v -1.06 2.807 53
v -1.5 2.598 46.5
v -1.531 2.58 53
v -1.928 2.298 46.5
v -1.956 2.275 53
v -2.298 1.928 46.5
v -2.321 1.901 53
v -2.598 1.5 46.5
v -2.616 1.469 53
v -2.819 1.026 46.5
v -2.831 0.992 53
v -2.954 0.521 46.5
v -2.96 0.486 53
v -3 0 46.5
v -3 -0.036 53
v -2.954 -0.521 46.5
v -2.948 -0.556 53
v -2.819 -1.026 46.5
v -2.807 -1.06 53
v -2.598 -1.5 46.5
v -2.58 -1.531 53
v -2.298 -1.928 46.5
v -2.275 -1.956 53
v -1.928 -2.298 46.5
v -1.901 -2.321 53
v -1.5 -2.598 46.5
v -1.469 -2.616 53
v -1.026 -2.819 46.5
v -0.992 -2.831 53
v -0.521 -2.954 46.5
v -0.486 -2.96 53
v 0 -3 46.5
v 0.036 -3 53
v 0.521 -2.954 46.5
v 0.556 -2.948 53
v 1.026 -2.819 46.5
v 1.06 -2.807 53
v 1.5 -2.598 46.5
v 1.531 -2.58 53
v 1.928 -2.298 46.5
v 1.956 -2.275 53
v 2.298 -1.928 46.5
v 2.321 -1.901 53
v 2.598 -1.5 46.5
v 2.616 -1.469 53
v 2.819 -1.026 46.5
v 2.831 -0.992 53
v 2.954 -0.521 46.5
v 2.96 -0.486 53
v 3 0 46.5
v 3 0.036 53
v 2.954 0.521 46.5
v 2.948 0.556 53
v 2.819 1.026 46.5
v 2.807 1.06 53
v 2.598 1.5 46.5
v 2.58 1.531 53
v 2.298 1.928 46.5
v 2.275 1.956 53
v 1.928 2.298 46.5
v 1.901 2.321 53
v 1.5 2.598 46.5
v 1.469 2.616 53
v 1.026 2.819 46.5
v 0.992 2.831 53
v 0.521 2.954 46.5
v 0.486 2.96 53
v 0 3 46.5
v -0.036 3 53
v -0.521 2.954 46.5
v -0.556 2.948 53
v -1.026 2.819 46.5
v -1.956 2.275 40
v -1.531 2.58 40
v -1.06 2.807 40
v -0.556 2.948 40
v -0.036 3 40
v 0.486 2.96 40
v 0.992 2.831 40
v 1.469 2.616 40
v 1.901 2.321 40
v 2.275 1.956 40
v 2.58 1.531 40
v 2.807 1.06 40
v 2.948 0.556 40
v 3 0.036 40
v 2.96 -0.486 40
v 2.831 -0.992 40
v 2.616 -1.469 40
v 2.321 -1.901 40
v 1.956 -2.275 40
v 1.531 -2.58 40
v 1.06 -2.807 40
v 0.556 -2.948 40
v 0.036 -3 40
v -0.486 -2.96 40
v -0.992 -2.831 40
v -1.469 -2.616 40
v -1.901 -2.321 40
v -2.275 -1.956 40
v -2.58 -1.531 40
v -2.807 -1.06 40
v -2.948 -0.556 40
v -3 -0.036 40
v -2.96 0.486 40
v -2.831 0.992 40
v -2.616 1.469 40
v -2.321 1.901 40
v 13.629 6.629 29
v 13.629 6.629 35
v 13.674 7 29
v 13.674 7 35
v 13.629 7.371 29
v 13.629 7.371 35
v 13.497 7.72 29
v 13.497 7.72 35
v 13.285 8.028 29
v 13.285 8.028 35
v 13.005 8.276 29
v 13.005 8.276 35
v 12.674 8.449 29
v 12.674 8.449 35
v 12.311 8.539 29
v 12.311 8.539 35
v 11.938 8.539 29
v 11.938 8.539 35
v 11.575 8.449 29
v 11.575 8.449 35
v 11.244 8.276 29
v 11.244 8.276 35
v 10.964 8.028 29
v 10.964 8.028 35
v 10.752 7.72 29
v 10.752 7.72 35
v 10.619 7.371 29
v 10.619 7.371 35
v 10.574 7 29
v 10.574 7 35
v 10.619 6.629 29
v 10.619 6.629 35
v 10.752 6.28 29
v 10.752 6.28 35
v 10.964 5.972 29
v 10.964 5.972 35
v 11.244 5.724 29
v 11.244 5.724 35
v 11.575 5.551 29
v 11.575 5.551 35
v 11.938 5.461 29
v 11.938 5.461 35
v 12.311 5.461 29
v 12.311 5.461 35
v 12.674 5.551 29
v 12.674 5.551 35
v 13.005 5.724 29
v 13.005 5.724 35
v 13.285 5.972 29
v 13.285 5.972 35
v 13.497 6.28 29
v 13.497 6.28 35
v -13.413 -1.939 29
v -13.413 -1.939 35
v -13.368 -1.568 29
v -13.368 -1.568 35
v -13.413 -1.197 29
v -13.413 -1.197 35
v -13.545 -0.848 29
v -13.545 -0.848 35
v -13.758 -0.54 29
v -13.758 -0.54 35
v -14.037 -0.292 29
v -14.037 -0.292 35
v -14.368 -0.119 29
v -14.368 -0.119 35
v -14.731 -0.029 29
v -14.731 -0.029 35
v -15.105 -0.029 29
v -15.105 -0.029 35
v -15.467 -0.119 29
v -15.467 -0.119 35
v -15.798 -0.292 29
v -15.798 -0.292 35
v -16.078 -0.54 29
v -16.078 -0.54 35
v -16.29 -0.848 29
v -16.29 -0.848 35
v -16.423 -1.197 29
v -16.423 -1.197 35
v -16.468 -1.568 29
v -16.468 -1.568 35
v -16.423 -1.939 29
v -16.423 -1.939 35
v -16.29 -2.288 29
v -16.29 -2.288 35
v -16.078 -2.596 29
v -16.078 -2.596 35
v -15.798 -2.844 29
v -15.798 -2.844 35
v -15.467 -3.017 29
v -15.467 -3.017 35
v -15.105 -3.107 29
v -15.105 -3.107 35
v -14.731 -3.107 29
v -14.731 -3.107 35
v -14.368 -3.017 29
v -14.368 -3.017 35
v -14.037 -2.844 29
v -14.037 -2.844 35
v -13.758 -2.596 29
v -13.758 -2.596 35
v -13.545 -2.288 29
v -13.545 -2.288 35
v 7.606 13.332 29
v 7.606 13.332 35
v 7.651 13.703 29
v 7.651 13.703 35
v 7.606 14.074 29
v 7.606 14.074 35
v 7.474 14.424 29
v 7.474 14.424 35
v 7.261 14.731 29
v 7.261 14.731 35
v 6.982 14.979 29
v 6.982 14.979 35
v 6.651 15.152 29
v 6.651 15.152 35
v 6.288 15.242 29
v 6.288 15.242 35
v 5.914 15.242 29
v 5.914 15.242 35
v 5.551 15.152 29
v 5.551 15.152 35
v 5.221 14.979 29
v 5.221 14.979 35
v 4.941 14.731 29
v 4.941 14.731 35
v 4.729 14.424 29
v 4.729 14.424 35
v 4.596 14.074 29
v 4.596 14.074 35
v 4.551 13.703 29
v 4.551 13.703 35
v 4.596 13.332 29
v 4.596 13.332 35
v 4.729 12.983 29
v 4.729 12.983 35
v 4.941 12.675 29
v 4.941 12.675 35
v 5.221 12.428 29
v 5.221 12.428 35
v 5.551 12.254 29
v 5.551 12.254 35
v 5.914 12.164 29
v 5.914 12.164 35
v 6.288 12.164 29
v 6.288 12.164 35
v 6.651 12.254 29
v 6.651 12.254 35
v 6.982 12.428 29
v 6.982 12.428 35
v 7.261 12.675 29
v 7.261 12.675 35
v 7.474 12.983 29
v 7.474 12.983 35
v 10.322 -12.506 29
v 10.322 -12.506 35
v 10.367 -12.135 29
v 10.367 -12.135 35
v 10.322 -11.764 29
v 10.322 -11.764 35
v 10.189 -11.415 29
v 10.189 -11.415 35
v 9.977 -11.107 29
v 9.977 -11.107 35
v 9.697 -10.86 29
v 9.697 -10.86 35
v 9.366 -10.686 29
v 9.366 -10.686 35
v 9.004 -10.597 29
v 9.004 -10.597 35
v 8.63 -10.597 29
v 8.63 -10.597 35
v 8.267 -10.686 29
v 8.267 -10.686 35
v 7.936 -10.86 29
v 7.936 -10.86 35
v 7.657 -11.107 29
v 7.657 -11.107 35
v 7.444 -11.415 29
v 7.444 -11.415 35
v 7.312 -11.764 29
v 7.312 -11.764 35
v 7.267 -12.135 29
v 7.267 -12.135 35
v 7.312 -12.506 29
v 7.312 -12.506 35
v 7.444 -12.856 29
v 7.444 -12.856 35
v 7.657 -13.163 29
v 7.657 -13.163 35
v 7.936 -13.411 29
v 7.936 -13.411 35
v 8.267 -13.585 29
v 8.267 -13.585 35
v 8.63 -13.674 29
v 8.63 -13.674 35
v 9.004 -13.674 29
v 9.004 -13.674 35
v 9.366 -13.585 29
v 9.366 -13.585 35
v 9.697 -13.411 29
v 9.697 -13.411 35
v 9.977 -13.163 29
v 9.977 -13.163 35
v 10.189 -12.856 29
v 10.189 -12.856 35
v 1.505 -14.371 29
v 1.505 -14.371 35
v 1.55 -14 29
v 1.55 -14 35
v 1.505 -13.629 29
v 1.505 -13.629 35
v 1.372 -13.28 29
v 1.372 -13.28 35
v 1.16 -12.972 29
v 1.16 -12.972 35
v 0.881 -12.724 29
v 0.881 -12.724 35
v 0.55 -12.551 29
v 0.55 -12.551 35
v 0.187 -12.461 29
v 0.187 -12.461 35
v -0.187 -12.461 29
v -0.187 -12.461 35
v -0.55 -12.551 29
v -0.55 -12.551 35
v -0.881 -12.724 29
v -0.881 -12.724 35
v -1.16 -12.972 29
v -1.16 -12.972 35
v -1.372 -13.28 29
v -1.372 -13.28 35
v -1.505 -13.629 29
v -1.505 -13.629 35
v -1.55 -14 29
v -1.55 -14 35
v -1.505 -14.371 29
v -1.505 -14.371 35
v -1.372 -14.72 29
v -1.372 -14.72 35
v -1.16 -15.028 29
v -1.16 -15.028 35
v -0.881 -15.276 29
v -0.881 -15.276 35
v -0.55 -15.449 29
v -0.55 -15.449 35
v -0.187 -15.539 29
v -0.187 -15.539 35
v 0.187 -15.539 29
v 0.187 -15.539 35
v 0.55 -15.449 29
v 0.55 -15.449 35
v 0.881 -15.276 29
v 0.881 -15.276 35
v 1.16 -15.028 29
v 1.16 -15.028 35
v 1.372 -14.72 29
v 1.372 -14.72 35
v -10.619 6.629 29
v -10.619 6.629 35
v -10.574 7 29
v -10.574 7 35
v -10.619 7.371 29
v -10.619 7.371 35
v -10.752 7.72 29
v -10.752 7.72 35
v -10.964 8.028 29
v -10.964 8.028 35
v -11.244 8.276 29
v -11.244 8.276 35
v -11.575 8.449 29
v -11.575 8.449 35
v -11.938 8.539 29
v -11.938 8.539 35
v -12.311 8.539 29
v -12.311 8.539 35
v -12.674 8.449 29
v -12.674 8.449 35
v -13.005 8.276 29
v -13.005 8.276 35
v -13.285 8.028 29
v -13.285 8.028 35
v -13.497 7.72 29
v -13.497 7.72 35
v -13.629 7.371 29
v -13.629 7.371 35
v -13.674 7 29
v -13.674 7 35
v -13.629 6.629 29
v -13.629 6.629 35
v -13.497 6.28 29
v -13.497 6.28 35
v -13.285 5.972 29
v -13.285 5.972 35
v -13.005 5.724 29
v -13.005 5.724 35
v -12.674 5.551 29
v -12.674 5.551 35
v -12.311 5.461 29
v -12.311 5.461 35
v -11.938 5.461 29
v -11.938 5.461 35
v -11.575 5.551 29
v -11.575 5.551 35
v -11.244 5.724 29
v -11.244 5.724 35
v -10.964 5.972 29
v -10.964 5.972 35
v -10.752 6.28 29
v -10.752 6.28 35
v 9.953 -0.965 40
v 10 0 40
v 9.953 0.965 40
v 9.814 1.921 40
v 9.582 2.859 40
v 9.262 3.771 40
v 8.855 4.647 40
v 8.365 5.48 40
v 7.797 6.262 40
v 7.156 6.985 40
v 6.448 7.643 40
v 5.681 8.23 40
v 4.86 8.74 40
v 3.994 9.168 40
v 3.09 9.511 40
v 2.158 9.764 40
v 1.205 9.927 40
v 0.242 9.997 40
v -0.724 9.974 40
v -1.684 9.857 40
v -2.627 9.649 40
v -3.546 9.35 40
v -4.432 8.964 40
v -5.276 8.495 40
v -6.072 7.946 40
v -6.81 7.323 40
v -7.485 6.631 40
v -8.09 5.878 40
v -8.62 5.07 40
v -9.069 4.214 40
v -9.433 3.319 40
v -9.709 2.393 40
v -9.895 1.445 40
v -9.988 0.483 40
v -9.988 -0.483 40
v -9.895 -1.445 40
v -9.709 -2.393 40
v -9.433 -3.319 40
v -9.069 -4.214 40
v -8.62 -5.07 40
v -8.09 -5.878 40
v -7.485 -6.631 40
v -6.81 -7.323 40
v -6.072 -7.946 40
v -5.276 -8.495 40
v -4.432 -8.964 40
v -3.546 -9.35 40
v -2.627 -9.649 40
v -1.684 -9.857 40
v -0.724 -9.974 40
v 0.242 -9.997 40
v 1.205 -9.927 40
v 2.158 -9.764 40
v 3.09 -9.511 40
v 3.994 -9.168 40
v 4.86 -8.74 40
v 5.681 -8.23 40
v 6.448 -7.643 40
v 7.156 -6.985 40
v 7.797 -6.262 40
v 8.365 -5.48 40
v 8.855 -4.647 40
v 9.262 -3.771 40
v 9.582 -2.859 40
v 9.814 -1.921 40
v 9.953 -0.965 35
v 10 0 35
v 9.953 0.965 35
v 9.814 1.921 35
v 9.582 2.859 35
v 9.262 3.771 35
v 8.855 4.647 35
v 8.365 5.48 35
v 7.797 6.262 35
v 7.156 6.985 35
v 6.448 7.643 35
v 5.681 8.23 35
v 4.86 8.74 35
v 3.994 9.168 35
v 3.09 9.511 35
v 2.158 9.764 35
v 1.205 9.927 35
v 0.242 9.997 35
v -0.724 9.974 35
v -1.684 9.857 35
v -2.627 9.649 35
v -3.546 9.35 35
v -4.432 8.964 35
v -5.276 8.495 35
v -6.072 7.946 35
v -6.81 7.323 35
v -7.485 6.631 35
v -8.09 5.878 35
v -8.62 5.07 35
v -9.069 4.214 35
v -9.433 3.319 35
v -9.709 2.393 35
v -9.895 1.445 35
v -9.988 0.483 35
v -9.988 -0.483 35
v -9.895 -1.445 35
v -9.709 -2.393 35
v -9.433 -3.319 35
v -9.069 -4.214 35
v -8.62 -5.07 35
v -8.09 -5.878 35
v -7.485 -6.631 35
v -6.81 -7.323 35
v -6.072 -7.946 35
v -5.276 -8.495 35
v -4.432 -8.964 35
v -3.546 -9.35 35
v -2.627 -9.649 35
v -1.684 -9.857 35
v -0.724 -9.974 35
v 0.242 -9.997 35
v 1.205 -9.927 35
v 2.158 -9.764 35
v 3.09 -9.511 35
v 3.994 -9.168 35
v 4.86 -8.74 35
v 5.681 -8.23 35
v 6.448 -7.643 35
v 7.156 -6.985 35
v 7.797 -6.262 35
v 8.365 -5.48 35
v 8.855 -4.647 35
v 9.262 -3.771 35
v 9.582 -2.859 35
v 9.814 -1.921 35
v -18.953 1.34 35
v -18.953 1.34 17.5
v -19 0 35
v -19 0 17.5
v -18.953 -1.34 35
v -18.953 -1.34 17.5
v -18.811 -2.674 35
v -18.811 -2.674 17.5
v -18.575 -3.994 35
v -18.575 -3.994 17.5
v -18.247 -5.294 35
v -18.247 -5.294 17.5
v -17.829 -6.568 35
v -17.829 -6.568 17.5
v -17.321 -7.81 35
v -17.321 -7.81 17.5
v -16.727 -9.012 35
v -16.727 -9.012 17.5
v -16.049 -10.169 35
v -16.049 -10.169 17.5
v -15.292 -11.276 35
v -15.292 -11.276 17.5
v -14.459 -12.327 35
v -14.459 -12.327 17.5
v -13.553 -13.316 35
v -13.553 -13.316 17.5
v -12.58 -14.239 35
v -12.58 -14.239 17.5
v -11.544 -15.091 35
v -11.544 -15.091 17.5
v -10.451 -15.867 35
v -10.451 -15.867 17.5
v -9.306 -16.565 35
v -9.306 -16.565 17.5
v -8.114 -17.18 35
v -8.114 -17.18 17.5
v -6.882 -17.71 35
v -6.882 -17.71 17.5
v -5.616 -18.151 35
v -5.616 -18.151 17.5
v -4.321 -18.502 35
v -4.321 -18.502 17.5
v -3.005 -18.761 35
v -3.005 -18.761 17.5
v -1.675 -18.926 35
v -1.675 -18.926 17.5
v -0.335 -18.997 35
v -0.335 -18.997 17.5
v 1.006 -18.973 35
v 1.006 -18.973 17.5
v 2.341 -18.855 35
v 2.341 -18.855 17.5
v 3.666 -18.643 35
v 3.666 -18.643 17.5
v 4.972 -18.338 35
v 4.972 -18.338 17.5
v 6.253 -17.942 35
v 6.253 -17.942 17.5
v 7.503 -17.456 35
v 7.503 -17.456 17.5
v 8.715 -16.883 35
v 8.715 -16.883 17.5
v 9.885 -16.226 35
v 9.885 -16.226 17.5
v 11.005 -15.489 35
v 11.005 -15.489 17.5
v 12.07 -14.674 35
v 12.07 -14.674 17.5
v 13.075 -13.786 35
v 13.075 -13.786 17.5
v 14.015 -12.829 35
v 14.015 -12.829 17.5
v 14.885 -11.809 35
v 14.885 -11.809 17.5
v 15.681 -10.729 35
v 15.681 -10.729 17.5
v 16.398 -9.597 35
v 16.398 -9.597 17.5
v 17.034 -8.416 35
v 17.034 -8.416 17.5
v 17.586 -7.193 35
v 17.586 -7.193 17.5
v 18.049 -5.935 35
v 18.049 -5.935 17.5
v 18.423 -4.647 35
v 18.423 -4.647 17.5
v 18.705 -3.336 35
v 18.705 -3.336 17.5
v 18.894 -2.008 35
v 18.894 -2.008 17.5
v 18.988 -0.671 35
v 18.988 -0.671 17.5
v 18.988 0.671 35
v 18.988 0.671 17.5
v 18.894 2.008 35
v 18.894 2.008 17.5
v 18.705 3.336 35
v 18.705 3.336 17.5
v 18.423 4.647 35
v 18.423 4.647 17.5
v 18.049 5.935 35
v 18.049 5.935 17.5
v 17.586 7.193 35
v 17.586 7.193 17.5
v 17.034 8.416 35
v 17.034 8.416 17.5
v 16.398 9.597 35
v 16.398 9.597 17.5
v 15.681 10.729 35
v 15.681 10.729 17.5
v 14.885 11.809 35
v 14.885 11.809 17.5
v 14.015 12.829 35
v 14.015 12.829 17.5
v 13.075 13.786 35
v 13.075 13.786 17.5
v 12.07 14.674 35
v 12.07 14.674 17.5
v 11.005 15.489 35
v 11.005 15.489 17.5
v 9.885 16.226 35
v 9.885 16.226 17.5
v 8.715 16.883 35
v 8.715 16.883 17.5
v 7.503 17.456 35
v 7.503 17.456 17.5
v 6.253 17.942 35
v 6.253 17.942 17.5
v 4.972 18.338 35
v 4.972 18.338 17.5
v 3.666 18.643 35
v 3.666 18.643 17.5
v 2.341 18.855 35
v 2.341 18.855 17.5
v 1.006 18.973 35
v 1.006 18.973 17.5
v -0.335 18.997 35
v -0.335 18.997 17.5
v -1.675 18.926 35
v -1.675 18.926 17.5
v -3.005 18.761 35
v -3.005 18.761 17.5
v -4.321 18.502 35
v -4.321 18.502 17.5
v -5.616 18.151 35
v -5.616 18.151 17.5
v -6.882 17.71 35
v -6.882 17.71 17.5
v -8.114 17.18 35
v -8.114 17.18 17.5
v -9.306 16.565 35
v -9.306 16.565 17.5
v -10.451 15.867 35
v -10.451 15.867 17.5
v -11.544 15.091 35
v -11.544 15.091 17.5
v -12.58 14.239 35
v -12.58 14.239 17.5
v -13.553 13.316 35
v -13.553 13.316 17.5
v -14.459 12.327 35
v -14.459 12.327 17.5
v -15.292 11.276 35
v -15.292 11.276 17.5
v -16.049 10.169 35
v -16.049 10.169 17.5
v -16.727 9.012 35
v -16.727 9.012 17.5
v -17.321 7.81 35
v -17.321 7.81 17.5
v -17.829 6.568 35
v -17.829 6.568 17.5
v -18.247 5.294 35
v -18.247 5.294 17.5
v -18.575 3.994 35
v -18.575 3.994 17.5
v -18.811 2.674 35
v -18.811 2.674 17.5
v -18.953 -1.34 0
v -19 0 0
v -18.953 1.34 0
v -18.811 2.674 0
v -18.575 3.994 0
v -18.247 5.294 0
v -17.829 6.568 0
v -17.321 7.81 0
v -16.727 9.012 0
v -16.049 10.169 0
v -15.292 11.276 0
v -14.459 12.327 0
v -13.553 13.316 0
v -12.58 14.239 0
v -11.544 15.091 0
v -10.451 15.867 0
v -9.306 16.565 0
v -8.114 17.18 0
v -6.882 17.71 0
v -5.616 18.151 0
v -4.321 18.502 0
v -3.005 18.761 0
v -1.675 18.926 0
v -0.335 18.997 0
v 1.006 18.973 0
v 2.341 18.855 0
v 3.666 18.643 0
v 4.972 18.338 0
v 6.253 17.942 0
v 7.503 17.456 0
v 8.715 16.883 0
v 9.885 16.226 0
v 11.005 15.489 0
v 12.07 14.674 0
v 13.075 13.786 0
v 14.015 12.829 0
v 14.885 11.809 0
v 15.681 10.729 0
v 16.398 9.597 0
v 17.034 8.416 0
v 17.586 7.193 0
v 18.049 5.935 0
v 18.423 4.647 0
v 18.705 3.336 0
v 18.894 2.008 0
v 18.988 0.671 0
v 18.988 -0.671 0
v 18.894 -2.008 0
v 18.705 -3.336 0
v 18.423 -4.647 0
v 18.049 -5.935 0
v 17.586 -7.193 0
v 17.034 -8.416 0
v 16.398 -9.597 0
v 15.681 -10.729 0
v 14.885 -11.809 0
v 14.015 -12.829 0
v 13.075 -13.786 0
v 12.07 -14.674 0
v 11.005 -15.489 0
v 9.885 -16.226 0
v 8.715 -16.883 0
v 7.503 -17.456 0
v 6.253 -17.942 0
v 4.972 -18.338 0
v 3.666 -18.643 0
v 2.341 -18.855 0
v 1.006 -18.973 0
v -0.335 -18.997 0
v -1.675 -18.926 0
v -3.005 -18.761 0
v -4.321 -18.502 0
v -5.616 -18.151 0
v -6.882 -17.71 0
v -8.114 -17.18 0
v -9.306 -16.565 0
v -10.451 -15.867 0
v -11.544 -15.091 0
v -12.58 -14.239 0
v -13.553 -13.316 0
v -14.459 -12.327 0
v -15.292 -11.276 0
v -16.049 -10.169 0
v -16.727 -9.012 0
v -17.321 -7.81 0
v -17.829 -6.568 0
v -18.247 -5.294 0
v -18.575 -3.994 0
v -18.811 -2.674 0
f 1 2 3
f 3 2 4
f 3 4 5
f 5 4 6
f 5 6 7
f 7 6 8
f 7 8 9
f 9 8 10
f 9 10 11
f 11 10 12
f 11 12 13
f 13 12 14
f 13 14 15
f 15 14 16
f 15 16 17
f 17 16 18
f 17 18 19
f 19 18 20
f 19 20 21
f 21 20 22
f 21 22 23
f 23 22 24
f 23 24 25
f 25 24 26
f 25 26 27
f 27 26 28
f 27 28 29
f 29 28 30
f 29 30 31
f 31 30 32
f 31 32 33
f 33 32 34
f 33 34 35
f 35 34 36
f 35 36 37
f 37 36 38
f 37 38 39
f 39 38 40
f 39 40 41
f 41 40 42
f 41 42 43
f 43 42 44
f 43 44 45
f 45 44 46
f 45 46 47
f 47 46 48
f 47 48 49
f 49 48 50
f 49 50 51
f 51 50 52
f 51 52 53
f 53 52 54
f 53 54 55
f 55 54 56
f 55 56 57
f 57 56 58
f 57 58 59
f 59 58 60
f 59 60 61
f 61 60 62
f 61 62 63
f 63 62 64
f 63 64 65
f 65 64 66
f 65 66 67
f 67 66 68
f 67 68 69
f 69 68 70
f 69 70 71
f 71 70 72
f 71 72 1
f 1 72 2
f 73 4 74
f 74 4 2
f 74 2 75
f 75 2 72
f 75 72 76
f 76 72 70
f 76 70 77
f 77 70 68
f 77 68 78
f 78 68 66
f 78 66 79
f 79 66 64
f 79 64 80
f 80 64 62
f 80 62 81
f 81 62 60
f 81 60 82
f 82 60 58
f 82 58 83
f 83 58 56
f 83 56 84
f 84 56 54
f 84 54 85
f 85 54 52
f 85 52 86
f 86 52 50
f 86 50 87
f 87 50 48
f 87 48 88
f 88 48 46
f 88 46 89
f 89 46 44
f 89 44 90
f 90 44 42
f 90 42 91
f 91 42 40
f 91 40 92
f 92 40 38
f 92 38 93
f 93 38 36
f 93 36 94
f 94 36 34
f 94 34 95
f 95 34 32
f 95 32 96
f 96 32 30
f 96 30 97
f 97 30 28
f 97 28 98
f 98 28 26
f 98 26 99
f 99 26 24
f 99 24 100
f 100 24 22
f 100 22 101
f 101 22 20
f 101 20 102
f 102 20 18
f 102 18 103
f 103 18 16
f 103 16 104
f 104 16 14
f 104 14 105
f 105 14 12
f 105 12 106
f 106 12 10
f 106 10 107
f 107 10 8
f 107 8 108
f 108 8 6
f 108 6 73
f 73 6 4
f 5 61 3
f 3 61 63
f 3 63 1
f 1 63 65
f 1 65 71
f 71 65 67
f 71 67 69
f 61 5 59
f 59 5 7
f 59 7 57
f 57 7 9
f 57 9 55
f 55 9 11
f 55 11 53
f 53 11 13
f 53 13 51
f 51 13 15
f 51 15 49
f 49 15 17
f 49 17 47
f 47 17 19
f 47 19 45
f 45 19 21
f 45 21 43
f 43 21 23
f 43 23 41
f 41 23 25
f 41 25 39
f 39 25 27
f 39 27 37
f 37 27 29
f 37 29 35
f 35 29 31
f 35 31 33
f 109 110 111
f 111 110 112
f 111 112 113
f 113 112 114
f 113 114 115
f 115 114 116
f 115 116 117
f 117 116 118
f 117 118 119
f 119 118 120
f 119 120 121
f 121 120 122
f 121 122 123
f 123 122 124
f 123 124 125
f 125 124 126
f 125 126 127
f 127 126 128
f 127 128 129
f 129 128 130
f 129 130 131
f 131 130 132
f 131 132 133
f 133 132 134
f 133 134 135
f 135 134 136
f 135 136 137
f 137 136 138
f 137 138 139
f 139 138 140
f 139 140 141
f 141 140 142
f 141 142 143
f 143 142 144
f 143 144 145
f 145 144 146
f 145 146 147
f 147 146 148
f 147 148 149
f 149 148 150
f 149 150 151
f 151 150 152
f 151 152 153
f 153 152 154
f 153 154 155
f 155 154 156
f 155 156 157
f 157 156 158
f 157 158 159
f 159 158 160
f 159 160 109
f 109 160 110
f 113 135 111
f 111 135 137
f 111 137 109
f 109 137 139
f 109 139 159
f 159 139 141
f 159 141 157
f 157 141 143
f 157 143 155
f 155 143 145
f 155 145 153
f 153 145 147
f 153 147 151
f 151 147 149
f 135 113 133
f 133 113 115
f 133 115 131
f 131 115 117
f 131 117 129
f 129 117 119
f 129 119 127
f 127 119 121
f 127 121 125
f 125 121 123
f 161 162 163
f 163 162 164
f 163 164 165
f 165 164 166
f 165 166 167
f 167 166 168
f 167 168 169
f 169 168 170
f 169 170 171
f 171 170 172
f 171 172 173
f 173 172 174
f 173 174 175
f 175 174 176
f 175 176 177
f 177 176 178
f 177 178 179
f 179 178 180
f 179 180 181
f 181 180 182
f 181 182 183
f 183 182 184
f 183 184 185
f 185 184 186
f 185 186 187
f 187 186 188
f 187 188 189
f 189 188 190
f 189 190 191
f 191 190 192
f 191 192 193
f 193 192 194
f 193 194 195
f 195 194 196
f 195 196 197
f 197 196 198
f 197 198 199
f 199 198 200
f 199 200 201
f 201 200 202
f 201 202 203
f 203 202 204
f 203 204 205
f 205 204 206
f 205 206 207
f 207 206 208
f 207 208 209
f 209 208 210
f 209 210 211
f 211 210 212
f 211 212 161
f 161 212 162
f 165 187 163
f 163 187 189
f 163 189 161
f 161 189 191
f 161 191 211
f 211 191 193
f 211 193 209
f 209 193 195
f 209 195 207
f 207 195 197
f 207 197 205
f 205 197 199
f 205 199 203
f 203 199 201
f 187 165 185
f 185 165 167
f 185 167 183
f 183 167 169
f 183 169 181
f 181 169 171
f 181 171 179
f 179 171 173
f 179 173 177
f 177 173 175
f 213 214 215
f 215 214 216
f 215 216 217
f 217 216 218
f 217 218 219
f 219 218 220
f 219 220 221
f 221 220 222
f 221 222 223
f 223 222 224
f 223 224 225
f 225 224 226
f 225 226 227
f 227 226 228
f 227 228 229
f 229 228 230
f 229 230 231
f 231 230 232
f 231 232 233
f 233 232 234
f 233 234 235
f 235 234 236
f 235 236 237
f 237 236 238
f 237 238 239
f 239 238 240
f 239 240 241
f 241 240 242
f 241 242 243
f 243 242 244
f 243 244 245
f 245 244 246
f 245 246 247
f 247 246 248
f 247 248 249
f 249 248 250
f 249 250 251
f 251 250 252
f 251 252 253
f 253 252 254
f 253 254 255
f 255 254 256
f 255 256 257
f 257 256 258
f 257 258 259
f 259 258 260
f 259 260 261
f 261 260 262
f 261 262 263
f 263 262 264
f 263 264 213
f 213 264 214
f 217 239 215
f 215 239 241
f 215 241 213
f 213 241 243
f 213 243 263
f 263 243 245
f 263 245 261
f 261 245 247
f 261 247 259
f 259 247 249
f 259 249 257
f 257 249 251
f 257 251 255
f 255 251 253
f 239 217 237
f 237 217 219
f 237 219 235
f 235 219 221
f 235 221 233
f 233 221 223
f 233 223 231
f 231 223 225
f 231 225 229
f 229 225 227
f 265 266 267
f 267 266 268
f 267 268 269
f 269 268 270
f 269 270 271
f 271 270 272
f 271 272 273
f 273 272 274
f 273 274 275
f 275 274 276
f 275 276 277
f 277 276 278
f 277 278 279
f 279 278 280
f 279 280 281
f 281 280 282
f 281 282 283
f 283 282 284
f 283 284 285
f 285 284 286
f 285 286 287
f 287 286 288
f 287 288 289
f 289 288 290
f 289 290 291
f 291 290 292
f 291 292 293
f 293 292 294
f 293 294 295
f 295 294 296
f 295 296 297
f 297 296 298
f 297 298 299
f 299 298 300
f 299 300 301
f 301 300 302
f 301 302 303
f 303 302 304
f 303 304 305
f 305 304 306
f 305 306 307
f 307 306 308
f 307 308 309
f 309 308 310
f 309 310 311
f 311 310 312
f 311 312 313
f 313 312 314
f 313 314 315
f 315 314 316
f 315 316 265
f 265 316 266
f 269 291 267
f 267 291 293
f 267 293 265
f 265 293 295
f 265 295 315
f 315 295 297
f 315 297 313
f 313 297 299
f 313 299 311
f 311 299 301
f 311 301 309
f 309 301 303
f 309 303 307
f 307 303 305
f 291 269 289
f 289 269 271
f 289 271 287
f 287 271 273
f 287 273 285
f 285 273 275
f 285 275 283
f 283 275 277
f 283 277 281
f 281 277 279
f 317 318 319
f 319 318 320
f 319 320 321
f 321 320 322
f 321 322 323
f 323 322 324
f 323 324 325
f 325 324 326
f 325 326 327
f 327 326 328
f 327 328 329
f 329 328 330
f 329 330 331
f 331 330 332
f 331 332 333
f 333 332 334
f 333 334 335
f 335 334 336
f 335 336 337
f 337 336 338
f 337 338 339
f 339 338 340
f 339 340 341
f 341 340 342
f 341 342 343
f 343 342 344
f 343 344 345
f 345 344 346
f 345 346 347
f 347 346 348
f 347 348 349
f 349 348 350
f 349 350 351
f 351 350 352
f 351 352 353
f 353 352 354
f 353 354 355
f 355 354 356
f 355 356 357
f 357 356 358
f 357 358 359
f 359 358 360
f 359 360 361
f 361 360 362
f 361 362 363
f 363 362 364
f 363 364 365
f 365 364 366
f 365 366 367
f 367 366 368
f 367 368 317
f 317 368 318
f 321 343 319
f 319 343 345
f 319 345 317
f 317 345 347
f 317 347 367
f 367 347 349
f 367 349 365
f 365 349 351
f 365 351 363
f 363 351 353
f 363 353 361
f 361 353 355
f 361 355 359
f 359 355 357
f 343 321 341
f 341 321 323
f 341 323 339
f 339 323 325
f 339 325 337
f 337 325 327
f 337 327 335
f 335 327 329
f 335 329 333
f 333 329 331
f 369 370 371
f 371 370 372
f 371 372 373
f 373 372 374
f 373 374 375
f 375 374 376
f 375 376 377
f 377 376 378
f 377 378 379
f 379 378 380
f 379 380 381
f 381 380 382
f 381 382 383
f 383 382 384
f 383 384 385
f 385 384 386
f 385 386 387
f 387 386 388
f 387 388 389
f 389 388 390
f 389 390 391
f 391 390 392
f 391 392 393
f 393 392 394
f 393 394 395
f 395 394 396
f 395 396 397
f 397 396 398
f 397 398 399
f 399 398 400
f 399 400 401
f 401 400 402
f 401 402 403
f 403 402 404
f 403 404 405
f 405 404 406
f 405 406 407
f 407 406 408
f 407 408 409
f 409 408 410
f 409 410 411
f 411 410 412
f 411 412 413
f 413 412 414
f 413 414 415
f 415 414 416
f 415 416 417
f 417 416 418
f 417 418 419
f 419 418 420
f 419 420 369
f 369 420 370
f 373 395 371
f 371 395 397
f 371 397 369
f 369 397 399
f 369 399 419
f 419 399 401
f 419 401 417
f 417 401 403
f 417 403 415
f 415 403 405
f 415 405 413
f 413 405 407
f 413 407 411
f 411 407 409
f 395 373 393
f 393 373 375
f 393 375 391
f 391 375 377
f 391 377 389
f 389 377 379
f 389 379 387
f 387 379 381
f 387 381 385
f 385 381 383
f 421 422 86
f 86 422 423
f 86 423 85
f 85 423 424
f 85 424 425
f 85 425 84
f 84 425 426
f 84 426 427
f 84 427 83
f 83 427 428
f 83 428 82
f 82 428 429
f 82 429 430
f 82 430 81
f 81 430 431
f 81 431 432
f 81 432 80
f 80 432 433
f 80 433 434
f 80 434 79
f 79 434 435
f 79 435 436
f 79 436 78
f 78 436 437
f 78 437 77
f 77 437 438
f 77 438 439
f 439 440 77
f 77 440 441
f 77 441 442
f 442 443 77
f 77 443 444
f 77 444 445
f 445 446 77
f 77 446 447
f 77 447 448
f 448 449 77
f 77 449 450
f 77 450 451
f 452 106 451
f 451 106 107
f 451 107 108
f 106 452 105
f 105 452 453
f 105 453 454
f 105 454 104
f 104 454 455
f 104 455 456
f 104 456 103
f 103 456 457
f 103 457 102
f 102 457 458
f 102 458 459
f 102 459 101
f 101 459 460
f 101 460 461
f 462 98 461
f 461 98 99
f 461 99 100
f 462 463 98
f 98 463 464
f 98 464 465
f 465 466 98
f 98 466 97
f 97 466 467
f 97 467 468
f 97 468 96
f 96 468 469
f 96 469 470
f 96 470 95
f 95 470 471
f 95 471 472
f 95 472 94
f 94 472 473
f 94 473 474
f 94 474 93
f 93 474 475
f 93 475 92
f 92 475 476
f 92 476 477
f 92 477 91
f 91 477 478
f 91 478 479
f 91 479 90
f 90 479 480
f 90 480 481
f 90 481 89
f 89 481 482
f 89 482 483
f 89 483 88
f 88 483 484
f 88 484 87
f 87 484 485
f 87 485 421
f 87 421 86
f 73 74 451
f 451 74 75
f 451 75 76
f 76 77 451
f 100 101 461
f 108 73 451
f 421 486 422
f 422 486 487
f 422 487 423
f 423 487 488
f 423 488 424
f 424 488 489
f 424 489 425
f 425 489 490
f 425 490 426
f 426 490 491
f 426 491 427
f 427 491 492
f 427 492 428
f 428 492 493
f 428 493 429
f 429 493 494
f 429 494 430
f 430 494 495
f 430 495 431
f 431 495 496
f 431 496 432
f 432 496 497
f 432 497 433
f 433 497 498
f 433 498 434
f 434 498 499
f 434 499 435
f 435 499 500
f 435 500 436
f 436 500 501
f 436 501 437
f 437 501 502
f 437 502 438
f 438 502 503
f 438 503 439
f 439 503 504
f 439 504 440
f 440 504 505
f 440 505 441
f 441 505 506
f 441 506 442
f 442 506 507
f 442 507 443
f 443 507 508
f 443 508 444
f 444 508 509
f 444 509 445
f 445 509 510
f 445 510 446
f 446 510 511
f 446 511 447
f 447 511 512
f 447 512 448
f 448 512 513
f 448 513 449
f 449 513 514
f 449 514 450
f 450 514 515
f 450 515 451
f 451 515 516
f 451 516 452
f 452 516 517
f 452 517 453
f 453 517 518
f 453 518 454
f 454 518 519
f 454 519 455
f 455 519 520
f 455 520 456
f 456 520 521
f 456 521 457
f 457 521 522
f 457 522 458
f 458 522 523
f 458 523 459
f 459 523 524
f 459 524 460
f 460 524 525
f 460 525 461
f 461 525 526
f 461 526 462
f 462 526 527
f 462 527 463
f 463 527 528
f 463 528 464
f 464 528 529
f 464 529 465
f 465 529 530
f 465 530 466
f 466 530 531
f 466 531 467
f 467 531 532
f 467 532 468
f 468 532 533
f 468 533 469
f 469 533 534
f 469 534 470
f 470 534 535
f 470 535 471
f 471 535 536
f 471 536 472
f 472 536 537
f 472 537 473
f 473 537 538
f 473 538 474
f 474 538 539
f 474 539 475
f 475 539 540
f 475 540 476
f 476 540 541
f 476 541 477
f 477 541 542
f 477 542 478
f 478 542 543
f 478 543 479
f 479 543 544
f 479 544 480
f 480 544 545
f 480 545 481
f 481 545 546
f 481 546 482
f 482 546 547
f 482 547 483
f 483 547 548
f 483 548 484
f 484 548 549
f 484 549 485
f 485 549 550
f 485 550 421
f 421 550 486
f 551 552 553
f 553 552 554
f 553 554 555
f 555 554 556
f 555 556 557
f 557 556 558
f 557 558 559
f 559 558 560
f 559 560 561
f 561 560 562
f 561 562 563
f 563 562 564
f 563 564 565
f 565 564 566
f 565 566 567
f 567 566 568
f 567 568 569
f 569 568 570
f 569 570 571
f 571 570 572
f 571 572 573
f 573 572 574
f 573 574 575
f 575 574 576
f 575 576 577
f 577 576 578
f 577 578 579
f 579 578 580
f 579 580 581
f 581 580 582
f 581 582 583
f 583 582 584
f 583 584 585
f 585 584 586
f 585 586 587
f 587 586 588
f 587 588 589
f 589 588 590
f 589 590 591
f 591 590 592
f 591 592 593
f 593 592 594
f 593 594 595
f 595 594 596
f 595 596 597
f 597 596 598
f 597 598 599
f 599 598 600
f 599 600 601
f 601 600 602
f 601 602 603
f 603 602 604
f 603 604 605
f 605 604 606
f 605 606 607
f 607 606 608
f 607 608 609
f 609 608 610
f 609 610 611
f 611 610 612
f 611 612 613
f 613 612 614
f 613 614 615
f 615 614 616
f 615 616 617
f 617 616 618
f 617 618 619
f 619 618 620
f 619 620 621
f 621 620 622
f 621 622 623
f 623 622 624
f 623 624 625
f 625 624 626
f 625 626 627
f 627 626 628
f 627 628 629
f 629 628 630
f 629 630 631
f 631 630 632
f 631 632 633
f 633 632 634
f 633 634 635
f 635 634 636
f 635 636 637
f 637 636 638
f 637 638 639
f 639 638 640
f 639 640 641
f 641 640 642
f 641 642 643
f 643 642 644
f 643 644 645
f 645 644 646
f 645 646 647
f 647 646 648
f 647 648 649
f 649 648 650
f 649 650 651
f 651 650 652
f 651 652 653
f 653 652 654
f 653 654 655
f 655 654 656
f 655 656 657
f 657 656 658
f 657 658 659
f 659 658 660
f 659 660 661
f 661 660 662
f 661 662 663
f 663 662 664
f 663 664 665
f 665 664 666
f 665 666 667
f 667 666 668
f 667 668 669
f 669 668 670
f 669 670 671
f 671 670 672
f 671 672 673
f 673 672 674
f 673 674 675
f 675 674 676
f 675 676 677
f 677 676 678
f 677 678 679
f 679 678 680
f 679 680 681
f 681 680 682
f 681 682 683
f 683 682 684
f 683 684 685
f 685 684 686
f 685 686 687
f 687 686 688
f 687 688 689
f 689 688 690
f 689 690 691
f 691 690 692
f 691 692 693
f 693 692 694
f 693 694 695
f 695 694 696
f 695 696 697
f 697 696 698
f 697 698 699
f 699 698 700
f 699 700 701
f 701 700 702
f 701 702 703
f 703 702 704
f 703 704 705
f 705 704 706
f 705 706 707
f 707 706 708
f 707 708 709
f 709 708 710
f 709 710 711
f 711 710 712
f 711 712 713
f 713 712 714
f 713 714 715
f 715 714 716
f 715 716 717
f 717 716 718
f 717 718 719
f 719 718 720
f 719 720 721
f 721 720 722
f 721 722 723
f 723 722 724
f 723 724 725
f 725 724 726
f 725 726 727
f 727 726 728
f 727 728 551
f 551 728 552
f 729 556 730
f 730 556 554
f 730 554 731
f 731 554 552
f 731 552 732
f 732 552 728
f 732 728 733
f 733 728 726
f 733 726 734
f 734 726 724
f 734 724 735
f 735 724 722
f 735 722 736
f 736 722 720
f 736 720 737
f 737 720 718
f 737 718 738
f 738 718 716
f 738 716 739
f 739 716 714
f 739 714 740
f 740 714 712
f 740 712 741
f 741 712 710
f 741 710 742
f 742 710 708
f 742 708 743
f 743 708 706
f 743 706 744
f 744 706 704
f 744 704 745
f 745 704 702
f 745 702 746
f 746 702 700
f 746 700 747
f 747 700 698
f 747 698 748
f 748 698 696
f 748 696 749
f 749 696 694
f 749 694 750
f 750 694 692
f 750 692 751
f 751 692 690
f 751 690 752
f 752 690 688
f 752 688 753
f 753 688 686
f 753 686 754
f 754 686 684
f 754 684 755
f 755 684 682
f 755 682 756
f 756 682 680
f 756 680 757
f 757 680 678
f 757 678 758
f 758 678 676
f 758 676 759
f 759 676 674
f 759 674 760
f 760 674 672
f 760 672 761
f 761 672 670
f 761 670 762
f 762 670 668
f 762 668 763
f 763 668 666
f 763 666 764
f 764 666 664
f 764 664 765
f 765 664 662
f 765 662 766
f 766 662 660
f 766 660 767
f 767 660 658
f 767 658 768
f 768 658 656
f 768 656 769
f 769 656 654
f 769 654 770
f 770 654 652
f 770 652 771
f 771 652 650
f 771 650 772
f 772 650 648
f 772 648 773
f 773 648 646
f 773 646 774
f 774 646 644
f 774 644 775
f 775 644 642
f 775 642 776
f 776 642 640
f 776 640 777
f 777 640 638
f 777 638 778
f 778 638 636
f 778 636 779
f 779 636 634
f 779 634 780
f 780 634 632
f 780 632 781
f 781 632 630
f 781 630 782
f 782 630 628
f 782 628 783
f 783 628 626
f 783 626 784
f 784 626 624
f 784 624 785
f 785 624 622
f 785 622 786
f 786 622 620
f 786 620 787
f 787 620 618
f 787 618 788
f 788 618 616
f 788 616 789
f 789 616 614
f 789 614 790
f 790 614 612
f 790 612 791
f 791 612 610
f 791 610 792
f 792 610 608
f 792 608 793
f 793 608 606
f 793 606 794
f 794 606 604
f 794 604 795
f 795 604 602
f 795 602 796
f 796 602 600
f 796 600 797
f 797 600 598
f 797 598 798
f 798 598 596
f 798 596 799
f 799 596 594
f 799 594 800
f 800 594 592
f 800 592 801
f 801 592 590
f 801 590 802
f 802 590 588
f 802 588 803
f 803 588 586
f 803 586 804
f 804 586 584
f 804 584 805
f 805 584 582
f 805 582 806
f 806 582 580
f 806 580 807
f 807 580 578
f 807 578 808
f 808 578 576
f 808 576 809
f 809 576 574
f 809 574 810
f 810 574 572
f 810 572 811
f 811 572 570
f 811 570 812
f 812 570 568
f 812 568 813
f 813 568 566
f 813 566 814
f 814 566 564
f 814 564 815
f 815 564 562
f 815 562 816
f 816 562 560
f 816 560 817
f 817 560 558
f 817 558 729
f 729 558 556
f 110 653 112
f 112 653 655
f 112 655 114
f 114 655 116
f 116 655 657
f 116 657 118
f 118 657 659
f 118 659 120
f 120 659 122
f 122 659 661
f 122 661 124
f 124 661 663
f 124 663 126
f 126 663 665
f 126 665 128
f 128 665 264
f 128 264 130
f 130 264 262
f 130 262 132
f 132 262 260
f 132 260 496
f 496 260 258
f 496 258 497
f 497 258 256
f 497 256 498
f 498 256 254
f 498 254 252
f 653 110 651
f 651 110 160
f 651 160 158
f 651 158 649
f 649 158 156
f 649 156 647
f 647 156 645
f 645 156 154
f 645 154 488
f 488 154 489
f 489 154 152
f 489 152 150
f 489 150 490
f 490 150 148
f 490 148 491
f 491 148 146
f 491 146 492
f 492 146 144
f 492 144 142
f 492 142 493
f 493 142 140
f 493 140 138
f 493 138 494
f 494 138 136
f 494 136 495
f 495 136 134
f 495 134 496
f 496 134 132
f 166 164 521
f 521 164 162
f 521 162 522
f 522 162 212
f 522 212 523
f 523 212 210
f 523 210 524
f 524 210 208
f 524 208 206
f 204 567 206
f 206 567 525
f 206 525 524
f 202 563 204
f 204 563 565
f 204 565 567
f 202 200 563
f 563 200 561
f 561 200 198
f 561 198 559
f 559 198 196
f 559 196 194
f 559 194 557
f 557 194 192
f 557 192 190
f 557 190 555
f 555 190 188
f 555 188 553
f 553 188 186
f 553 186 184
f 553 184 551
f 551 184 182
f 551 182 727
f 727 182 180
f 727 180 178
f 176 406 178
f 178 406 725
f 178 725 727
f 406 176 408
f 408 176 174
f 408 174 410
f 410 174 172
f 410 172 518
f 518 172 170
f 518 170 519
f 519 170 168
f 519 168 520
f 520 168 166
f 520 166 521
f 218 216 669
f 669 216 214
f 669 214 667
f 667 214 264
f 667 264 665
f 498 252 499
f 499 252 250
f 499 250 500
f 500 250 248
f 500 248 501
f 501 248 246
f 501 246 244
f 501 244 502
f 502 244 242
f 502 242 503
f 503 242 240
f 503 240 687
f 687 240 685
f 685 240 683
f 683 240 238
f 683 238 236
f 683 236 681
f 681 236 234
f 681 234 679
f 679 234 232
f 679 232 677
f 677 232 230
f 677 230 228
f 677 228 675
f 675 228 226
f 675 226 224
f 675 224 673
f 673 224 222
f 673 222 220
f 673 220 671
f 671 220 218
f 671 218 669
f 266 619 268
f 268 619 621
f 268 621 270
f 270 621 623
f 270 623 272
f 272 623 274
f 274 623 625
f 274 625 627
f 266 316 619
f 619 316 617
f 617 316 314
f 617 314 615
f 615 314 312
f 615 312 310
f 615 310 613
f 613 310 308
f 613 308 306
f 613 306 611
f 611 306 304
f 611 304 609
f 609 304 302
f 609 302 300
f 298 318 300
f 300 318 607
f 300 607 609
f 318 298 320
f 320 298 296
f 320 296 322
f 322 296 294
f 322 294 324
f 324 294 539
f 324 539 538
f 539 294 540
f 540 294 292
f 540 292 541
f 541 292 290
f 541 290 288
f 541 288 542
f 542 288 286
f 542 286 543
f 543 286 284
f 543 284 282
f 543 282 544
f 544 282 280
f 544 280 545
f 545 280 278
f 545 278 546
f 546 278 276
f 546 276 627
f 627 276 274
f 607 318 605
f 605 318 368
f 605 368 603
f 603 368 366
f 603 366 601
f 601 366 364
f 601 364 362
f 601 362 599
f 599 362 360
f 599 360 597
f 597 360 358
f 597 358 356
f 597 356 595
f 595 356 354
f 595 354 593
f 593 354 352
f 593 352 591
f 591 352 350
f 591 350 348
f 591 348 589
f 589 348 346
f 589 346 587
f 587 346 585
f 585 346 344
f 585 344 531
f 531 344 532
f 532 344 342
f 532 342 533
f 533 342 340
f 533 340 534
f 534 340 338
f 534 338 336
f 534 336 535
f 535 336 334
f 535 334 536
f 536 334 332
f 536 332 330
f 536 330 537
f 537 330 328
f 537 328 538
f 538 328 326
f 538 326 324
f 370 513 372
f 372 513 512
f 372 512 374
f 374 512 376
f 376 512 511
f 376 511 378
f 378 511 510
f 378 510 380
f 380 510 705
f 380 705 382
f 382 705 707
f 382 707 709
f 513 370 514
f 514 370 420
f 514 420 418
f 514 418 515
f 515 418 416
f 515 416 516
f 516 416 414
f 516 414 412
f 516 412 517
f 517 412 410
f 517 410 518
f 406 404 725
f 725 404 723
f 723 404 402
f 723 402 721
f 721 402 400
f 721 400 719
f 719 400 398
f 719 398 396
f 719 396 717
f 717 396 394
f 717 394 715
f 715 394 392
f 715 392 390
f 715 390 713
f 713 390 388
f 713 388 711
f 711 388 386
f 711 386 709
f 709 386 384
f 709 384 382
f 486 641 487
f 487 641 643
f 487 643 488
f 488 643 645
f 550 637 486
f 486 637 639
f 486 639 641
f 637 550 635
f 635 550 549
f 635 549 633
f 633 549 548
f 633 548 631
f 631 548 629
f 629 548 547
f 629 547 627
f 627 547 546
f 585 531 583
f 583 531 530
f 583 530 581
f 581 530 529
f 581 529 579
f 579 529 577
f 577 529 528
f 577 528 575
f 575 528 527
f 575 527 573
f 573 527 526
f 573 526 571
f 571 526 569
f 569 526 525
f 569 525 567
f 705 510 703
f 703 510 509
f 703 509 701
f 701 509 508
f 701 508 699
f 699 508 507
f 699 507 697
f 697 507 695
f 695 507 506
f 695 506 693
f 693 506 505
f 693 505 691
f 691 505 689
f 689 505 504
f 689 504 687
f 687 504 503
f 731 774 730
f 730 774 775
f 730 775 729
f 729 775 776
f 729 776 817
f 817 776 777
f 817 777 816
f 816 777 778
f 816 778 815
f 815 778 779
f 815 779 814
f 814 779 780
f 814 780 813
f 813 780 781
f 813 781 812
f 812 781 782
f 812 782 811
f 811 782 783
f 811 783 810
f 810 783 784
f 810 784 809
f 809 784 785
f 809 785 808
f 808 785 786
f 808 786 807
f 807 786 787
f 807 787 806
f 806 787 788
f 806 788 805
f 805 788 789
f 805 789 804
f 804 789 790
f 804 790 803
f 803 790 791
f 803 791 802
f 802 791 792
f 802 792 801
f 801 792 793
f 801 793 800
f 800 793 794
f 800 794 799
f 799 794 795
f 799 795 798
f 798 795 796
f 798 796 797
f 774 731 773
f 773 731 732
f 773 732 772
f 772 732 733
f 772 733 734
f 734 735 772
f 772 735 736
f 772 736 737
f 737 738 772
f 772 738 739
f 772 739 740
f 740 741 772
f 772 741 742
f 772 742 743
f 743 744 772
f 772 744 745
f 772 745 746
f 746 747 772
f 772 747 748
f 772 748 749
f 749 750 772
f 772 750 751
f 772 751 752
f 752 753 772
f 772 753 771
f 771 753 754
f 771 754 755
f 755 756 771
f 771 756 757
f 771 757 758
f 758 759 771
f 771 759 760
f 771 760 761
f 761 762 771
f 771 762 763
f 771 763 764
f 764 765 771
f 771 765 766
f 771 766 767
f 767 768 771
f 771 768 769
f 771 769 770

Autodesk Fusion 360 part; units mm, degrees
sketch "Sketch1" plane through (0, 0, 0) normal (0, 0, 1) x (1, 0, 0)
  circle A0 centre (0, 0) radius 19
  dimension "d1" = 38
extrude "Extrude1" add sketch "Sketch1" along normal blind 35
sketch "Sketch2" plane through (0, 0, 35) normal (0, 0, 1) x (-1, 0, 0)
  circle A0 centre (0, 0) radius 19
  circle A1 centre (0, 0) radius 10
  circle A2 centre (0, 0) radius 14 construction
  circle A3 centre (0, 0) radius 15 construction
  circle A4 centre (0, 14) radius 1.55
  line L0 (0, 0) -> (0, 1) construction
  line L1 (0, 1) -> (0, 14) construction
  line L2 (0, 0) -> (-8.8168, 12.1353) construction
  circle A5 centre (-8.8168, 12.1353) radius 1.55
  circle A6 centre (-12.1244, -7) radius 1.55
  circle A7 centre (12.1244, -7) radius 1.55
  circle A8 centre (-6.101, -13.7032) radius 1.55
  circle A9 centre (14.9178, 1.5679) radius 1.55
  dimension "d4" = 20
  dimension "d13" = 28
  dimension "d14" = 30
  dimension "d15" = 3.1
  dimension "d16" = 36
  dimension "d17" = 3.1
  dimension "d19" = 360
  dimension "d21" = 360
extrude "Extrude2" add sketch "Sketch2" along normal blind 5 contours A1
sketch "Sketch3" plane through (0, 0, 40) normal (0, 0, 1) x (-1, 0, 0)
  circle A0 centre (0, 0) radius 10
  circle A1 centre (0, 0) radius 3
  line L0 (0, 3) -> (0, -2.58) construction
  line L1 (0, -2.58) -> (-1.5309, -2.58)
  line L2 (0, -2.58) -> (1.5309, -2.58)
  dimension "d7" = 6
  dimension "d8" = 5.58
extrude "Extrude3" add sketch "Sketch3" along normal blind 13 contours A1 L1 L2 picked at (0.0089, 1.1344)
extrude "Extrude4" add sketch "Sketch3" along normal blind 3 contours A1 L1 L2 picked at (0.1335, -2.8511)
extrude "Extrude5" cut sketch "Sketch2" against normal blind 6 contours A4 | A5 | A6 | A7 | A8 | A9
extrude "Extruir6" cut 1 faces at (-0.6852, 0.4836, 53) along direction (0, 0, -1) blind 10
extrude "Extruir7" cut 1 faces at (-0.782, -0.3761, 43) along direction (0, 0, -1) blind 5
extrude "Extruir8" add 1 faces at (-0.782, -0.3761, 38) along direction (0, 0, 1) blind 15
